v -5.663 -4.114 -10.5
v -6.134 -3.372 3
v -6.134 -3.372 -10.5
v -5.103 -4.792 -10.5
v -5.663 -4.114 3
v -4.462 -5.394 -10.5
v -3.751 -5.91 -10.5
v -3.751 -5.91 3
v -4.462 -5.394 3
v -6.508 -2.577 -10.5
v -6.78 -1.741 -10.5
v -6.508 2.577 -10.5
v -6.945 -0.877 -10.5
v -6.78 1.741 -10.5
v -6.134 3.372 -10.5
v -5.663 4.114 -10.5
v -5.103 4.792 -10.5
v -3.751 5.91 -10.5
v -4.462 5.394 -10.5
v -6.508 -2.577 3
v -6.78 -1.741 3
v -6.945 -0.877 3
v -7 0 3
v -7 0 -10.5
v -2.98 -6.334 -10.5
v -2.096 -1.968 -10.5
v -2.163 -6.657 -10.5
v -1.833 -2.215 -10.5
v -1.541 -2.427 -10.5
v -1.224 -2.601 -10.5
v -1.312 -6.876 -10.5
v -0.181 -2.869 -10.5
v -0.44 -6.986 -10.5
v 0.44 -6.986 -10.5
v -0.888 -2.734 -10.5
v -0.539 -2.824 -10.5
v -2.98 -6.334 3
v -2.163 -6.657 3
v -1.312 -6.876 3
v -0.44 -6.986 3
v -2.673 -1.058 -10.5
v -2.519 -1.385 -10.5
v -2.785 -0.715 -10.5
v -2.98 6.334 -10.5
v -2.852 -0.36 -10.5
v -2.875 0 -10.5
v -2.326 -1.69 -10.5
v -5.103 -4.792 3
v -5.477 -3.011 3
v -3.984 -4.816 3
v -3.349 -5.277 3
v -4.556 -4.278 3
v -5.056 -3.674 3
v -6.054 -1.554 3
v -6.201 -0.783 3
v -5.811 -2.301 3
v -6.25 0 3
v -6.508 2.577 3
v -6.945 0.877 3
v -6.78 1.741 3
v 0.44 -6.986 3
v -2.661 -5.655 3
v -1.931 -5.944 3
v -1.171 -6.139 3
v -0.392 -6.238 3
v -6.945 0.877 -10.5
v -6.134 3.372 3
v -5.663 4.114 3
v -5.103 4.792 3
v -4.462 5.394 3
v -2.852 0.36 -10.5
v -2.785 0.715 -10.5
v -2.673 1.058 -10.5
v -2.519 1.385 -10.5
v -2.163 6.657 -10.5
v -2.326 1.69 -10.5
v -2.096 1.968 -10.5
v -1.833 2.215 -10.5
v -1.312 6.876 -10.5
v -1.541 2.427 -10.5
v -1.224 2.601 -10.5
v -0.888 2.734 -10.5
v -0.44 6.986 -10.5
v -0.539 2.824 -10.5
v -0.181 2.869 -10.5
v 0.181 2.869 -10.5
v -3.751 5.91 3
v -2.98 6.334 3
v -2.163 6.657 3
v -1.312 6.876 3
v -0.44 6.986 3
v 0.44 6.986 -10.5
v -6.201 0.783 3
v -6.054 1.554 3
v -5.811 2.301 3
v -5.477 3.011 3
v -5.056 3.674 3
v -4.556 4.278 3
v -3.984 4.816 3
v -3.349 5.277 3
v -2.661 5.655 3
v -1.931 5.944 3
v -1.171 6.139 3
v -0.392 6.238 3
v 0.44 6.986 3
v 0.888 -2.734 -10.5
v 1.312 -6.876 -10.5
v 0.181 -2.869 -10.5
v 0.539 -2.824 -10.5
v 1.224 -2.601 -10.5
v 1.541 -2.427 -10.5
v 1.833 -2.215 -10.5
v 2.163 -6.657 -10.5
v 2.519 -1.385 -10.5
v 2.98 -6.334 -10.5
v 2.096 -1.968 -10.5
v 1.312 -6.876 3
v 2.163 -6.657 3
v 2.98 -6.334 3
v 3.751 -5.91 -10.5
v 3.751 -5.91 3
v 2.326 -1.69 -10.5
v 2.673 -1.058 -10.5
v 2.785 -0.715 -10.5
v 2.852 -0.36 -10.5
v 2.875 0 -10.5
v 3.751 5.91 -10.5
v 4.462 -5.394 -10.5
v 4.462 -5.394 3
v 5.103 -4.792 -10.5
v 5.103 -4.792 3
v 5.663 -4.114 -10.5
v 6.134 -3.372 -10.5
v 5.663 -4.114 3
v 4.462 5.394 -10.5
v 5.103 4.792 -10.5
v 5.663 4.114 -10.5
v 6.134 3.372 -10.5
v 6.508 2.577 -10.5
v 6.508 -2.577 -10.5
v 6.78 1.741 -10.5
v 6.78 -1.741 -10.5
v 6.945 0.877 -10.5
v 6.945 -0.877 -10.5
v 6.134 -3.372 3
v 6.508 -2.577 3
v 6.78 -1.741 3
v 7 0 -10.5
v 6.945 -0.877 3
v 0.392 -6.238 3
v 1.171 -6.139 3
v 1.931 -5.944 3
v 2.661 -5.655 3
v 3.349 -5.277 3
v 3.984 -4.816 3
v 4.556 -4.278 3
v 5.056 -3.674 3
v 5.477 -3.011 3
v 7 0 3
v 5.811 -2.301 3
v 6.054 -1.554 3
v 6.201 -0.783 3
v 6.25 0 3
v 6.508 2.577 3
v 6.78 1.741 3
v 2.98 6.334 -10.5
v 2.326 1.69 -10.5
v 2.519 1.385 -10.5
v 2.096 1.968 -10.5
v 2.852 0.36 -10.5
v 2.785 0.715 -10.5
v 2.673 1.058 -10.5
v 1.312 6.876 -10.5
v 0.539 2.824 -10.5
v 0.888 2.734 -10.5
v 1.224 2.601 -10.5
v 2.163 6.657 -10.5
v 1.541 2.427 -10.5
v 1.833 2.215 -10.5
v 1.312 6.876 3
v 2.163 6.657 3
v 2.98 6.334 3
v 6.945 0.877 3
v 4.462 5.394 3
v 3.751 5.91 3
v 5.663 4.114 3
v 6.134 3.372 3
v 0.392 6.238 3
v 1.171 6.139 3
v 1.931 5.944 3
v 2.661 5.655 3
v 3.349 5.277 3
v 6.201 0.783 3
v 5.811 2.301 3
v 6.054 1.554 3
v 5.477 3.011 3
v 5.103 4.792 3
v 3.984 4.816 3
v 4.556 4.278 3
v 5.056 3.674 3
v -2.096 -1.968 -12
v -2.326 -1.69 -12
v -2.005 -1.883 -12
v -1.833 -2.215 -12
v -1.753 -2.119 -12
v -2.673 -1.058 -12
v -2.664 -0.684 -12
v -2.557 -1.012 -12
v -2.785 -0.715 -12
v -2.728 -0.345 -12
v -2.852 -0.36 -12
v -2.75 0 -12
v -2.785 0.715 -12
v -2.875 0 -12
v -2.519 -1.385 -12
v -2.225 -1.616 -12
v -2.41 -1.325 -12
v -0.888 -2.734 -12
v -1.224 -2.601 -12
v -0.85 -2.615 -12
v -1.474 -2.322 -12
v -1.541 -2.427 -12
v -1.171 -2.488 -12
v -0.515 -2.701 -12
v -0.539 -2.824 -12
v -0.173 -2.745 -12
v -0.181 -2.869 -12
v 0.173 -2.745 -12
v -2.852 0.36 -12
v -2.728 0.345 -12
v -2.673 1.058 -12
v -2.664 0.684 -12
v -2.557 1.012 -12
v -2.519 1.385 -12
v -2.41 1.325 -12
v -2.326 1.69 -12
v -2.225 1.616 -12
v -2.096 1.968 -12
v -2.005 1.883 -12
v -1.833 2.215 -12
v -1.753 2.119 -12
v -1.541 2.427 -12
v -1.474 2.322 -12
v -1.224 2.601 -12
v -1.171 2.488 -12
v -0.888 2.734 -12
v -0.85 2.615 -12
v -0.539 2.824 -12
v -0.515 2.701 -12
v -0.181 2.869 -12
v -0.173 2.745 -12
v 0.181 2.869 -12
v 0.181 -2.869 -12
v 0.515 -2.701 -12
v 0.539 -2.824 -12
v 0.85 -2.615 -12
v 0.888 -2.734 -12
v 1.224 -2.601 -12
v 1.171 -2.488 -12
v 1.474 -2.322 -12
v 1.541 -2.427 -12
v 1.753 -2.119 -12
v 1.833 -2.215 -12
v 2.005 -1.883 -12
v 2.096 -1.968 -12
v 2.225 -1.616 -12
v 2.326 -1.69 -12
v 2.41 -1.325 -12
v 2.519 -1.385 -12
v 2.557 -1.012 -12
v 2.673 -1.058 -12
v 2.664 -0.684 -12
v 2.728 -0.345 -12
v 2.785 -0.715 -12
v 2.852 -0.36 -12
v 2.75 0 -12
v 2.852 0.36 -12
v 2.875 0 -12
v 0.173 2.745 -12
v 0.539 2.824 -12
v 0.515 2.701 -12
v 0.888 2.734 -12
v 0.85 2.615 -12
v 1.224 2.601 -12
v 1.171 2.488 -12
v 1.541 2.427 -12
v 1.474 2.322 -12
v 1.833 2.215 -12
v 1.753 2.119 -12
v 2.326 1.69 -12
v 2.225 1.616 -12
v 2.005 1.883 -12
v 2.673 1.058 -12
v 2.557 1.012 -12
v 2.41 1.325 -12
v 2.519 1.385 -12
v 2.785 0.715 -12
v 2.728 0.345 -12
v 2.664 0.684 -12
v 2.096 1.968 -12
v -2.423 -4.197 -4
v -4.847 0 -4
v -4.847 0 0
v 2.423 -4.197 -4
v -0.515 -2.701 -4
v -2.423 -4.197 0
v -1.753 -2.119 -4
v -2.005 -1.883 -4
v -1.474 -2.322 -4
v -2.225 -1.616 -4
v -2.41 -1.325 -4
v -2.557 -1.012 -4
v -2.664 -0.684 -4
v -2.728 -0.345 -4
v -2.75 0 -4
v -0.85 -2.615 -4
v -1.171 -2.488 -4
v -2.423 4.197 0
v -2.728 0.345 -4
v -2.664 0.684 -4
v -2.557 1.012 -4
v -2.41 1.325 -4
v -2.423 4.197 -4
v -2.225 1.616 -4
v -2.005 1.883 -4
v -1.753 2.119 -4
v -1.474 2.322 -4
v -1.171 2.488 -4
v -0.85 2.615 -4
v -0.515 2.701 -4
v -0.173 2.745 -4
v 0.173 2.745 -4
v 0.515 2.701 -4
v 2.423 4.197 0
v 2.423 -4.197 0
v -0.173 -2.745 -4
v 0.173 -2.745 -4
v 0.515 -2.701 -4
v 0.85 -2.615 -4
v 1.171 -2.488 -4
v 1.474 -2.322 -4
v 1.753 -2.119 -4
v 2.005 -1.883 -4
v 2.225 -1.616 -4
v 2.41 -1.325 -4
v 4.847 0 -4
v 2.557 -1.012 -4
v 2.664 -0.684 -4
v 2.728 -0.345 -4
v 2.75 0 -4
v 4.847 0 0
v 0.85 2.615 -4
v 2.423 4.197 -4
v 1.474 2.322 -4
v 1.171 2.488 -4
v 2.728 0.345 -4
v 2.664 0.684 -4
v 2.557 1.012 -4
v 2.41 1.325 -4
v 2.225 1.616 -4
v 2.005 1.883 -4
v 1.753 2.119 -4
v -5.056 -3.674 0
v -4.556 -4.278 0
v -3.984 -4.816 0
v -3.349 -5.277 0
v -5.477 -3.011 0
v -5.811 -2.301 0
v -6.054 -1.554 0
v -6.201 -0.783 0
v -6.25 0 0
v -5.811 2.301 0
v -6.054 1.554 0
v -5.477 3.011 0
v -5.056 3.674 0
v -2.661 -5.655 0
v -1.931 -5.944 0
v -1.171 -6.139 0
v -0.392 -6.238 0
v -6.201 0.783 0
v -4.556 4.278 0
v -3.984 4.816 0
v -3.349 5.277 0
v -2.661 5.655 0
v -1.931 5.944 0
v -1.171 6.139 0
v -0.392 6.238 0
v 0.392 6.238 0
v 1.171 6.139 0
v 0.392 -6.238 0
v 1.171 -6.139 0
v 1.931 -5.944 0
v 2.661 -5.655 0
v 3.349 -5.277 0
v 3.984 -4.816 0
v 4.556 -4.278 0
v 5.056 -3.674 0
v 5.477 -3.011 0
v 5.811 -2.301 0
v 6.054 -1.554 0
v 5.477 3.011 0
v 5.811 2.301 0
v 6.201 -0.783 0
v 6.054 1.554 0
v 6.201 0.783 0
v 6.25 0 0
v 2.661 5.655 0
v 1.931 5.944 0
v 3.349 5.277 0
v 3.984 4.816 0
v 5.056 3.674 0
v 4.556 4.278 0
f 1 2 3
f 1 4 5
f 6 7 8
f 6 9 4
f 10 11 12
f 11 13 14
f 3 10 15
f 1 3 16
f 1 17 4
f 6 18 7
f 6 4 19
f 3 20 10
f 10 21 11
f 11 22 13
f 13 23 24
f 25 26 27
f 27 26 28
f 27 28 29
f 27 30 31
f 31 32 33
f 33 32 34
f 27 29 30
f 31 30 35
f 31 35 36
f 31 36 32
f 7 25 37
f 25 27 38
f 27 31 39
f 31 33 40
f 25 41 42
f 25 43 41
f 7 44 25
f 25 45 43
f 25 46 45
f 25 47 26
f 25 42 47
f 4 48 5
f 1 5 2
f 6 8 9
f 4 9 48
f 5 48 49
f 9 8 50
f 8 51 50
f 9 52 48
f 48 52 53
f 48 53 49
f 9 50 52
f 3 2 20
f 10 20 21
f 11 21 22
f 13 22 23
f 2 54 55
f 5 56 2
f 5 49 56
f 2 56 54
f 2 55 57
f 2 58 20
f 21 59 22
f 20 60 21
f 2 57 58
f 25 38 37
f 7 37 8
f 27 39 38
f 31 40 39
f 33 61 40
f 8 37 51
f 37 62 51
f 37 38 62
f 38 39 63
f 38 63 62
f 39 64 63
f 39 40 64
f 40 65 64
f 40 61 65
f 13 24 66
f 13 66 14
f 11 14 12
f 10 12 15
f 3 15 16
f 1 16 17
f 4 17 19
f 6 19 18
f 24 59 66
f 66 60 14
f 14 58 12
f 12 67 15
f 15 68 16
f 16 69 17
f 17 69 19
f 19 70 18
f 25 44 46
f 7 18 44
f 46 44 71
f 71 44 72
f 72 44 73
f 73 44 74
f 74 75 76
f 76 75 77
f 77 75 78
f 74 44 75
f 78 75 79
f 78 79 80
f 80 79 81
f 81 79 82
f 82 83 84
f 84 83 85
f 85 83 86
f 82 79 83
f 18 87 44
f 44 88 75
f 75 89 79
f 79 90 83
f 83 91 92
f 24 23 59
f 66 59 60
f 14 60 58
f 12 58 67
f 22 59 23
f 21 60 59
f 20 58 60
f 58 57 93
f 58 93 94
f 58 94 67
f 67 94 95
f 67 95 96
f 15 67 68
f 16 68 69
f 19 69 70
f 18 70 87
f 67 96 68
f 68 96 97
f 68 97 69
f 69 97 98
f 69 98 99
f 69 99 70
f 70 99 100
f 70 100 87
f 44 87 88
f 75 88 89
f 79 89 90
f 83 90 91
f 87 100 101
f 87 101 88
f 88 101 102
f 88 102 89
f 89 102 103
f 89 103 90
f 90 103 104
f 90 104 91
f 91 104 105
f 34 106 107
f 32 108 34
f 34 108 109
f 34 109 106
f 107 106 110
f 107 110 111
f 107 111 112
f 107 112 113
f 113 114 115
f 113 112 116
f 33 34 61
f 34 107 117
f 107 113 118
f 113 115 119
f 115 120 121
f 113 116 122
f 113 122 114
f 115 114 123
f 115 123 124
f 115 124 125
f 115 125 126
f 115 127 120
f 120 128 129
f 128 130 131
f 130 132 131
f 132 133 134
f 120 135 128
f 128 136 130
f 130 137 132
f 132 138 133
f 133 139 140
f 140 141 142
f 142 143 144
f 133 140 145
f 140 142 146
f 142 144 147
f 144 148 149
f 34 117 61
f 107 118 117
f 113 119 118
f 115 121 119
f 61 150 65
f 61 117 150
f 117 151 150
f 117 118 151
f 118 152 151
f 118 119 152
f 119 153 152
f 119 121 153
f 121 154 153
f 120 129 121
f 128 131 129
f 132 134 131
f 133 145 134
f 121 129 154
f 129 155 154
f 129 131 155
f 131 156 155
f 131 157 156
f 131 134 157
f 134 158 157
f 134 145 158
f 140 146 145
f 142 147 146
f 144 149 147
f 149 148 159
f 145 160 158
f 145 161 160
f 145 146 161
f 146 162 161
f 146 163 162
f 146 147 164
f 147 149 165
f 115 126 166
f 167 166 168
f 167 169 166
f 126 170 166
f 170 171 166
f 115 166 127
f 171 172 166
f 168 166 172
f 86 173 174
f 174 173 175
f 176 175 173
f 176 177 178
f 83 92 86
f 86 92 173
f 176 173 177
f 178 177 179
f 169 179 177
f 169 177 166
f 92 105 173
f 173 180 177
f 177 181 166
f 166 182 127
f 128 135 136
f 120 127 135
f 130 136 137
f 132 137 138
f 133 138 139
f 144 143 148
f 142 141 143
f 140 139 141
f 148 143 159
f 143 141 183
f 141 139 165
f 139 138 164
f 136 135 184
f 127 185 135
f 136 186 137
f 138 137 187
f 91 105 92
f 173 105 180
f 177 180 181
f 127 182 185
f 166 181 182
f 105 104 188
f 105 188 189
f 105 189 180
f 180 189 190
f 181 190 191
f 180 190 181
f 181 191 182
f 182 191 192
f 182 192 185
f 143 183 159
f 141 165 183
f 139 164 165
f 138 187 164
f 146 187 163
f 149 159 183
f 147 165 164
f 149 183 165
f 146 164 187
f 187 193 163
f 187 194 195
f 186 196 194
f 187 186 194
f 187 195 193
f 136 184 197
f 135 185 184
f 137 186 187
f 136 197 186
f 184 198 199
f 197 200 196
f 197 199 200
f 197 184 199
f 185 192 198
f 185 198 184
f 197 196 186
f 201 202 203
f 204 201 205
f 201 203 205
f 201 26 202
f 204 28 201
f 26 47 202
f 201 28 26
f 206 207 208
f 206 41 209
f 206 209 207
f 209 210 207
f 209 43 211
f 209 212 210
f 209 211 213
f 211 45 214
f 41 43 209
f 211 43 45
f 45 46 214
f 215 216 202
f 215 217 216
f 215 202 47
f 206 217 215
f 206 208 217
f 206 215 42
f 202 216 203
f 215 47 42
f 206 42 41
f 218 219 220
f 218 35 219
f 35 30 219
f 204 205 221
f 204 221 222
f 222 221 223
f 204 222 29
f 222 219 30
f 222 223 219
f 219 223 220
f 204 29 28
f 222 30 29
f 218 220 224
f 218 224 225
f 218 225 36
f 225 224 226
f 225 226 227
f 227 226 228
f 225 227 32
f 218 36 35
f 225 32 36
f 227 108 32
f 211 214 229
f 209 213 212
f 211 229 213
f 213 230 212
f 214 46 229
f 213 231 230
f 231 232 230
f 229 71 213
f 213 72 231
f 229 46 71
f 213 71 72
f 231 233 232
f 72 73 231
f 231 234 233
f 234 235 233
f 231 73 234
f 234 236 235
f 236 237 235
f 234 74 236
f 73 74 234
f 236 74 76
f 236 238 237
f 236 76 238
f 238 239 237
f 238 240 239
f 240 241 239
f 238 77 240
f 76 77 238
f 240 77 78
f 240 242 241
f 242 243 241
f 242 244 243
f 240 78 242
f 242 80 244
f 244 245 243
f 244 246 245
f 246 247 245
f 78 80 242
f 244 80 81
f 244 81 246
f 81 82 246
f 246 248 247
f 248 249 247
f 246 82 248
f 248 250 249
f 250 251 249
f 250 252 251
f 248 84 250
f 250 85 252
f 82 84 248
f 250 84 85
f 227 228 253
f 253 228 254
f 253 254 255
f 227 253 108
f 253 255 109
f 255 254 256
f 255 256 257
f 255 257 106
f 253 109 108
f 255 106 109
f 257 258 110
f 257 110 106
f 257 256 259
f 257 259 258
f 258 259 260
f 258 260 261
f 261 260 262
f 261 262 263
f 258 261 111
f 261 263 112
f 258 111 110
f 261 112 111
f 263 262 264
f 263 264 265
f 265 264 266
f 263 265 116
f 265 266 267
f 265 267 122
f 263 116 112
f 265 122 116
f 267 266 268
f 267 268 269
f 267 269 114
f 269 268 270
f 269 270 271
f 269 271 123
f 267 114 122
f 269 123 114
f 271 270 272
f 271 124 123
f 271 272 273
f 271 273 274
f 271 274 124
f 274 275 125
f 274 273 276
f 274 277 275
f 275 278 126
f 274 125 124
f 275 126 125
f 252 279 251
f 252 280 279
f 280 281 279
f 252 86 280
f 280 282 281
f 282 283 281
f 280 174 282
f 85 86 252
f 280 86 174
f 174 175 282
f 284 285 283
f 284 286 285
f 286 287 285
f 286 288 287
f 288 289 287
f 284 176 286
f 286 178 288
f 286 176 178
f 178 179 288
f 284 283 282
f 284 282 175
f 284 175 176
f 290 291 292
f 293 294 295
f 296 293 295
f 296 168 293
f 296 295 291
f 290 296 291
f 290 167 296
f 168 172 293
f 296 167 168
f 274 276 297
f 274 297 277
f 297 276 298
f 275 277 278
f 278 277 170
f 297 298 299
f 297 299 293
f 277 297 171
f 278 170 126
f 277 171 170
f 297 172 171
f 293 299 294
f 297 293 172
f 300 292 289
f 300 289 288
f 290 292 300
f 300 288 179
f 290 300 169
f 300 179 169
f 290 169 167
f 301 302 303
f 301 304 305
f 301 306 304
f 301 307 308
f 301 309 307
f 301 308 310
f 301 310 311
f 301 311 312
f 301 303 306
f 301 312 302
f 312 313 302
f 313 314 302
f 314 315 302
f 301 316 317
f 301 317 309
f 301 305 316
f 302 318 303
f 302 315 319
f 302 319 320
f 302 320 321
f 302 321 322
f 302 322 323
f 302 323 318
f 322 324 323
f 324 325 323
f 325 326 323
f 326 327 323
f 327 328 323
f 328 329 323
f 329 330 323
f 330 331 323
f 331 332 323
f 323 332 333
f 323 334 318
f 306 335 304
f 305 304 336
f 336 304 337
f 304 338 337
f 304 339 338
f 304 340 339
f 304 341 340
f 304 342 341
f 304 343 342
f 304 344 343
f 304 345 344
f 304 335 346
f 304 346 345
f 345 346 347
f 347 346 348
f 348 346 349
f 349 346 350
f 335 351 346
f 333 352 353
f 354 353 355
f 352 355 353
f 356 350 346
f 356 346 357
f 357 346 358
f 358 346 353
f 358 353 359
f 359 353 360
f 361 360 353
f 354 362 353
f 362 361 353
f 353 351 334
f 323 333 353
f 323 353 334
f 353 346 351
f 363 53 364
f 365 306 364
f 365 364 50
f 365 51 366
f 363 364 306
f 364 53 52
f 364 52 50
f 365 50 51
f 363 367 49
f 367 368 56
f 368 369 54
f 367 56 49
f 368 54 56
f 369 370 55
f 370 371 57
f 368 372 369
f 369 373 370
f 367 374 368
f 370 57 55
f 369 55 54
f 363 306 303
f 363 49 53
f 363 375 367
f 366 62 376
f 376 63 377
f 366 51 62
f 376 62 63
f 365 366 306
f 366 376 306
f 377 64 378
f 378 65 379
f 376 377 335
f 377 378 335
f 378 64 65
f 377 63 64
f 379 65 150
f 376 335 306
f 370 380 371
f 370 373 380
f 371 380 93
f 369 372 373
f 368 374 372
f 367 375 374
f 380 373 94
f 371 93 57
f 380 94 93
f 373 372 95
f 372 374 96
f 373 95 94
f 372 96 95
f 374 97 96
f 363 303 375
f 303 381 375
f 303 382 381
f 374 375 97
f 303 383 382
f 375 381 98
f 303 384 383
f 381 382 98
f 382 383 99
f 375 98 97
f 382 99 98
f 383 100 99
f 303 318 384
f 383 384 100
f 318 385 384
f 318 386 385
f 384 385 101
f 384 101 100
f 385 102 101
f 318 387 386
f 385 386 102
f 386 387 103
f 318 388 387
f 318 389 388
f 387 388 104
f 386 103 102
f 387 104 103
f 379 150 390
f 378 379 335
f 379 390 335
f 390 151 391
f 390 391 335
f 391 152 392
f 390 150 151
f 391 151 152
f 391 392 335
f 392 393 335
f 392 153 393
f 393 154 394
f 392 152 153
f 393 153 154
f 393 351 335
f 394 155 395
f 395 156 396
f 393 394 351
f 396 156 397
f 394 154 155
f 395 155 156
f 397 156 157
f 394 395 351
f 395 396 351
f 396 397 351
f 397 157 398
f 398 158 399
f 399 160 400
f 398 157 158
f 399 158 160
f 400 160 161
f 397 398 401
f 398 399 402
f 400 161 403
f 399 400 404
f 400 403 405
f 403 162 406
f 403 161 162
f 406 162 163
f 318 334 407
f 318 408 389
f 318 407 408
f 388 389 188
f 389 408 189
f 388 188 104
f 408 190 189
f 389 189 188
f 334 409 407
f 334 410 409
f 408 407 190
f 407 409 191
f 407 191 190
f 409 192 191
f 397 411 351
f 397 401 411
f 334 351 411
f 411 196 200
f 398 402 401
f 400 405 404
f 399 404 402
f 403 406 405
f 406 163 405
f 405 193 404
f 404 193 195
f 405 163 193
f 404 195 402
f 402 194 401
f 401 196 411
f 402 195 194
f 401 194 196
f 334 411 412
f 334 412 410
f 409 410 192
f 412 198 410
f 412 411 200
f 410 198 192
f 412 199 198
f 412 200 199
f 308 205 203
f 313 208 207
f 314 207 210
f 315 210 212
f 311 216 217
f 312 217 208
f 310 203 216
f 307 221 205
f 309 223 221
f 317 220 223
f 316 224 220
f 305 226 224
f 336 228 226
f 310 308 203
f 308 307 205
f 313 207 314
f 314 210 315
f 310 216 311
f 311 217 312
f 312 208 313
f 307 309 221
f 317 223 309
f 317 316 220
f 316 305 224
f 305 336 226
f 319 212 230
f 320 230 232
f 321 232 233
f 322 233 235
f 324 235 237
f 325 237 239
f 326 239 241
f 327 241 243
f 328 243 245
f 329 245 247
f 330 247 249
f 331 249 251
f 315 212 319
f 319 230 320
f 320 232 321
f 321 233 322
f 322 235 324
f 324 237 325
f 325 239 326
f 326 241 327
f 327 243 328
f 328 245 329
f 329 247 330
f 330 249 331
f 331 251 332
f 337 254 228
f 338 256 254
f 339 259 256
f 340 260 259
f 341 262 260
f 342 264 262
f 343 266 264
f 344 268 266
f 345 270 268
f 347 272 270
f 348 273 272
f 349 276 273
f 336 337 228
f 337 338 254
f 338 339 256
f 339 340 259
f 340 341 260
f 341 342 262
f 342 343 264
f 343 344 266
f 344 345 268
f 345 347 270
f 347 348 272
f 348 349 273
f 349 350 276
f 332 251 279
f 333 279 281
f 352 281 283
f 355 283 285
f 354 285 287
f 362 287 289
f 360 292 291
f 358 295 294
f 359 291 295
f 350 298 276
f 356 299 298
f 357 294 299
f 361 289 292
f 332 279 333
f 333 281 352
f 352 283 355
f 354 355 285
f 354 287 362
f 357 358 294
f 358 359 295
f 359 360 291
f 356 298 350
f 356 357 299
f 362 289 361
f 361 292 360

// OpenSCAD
$fn = 50;

difference() {
	union() {
		translate(v = [0, 0, -10.5]) {
			cylinder(h = 13.5, r = 7.0);
		}
		#translate(v = [0, 0, -12.0]) {
			cylinder(h = 12, r = 2.875);
		}
	}
	union() {
		translate(v = [0, 0, 0]) {
			rotate(a = [0, 0, 0]) {
				difference() {
					union() {
						translate(v = [0, 0, -4]) {
							linear_extrude(height = 4) {
								polygon(points = [[4.8468, 0.0], [2.4234000000000004, 4.197451927062417], [-2.423399999999999, 4.197451927062417], [-4.8468, 5.935618106107392e-16], [-2.423400000000002, -4.197451927062416], [2.423399999999997, -4.197451927062419]]);
							}
						}
					}
					union();
				}
			}
		}
		#cylinder(h = 3, r = 6.25);
		#translate(v = [0, 0, -100.0]) {
			cylinder(h = 200, r = 2.75);
		}
	}
}
